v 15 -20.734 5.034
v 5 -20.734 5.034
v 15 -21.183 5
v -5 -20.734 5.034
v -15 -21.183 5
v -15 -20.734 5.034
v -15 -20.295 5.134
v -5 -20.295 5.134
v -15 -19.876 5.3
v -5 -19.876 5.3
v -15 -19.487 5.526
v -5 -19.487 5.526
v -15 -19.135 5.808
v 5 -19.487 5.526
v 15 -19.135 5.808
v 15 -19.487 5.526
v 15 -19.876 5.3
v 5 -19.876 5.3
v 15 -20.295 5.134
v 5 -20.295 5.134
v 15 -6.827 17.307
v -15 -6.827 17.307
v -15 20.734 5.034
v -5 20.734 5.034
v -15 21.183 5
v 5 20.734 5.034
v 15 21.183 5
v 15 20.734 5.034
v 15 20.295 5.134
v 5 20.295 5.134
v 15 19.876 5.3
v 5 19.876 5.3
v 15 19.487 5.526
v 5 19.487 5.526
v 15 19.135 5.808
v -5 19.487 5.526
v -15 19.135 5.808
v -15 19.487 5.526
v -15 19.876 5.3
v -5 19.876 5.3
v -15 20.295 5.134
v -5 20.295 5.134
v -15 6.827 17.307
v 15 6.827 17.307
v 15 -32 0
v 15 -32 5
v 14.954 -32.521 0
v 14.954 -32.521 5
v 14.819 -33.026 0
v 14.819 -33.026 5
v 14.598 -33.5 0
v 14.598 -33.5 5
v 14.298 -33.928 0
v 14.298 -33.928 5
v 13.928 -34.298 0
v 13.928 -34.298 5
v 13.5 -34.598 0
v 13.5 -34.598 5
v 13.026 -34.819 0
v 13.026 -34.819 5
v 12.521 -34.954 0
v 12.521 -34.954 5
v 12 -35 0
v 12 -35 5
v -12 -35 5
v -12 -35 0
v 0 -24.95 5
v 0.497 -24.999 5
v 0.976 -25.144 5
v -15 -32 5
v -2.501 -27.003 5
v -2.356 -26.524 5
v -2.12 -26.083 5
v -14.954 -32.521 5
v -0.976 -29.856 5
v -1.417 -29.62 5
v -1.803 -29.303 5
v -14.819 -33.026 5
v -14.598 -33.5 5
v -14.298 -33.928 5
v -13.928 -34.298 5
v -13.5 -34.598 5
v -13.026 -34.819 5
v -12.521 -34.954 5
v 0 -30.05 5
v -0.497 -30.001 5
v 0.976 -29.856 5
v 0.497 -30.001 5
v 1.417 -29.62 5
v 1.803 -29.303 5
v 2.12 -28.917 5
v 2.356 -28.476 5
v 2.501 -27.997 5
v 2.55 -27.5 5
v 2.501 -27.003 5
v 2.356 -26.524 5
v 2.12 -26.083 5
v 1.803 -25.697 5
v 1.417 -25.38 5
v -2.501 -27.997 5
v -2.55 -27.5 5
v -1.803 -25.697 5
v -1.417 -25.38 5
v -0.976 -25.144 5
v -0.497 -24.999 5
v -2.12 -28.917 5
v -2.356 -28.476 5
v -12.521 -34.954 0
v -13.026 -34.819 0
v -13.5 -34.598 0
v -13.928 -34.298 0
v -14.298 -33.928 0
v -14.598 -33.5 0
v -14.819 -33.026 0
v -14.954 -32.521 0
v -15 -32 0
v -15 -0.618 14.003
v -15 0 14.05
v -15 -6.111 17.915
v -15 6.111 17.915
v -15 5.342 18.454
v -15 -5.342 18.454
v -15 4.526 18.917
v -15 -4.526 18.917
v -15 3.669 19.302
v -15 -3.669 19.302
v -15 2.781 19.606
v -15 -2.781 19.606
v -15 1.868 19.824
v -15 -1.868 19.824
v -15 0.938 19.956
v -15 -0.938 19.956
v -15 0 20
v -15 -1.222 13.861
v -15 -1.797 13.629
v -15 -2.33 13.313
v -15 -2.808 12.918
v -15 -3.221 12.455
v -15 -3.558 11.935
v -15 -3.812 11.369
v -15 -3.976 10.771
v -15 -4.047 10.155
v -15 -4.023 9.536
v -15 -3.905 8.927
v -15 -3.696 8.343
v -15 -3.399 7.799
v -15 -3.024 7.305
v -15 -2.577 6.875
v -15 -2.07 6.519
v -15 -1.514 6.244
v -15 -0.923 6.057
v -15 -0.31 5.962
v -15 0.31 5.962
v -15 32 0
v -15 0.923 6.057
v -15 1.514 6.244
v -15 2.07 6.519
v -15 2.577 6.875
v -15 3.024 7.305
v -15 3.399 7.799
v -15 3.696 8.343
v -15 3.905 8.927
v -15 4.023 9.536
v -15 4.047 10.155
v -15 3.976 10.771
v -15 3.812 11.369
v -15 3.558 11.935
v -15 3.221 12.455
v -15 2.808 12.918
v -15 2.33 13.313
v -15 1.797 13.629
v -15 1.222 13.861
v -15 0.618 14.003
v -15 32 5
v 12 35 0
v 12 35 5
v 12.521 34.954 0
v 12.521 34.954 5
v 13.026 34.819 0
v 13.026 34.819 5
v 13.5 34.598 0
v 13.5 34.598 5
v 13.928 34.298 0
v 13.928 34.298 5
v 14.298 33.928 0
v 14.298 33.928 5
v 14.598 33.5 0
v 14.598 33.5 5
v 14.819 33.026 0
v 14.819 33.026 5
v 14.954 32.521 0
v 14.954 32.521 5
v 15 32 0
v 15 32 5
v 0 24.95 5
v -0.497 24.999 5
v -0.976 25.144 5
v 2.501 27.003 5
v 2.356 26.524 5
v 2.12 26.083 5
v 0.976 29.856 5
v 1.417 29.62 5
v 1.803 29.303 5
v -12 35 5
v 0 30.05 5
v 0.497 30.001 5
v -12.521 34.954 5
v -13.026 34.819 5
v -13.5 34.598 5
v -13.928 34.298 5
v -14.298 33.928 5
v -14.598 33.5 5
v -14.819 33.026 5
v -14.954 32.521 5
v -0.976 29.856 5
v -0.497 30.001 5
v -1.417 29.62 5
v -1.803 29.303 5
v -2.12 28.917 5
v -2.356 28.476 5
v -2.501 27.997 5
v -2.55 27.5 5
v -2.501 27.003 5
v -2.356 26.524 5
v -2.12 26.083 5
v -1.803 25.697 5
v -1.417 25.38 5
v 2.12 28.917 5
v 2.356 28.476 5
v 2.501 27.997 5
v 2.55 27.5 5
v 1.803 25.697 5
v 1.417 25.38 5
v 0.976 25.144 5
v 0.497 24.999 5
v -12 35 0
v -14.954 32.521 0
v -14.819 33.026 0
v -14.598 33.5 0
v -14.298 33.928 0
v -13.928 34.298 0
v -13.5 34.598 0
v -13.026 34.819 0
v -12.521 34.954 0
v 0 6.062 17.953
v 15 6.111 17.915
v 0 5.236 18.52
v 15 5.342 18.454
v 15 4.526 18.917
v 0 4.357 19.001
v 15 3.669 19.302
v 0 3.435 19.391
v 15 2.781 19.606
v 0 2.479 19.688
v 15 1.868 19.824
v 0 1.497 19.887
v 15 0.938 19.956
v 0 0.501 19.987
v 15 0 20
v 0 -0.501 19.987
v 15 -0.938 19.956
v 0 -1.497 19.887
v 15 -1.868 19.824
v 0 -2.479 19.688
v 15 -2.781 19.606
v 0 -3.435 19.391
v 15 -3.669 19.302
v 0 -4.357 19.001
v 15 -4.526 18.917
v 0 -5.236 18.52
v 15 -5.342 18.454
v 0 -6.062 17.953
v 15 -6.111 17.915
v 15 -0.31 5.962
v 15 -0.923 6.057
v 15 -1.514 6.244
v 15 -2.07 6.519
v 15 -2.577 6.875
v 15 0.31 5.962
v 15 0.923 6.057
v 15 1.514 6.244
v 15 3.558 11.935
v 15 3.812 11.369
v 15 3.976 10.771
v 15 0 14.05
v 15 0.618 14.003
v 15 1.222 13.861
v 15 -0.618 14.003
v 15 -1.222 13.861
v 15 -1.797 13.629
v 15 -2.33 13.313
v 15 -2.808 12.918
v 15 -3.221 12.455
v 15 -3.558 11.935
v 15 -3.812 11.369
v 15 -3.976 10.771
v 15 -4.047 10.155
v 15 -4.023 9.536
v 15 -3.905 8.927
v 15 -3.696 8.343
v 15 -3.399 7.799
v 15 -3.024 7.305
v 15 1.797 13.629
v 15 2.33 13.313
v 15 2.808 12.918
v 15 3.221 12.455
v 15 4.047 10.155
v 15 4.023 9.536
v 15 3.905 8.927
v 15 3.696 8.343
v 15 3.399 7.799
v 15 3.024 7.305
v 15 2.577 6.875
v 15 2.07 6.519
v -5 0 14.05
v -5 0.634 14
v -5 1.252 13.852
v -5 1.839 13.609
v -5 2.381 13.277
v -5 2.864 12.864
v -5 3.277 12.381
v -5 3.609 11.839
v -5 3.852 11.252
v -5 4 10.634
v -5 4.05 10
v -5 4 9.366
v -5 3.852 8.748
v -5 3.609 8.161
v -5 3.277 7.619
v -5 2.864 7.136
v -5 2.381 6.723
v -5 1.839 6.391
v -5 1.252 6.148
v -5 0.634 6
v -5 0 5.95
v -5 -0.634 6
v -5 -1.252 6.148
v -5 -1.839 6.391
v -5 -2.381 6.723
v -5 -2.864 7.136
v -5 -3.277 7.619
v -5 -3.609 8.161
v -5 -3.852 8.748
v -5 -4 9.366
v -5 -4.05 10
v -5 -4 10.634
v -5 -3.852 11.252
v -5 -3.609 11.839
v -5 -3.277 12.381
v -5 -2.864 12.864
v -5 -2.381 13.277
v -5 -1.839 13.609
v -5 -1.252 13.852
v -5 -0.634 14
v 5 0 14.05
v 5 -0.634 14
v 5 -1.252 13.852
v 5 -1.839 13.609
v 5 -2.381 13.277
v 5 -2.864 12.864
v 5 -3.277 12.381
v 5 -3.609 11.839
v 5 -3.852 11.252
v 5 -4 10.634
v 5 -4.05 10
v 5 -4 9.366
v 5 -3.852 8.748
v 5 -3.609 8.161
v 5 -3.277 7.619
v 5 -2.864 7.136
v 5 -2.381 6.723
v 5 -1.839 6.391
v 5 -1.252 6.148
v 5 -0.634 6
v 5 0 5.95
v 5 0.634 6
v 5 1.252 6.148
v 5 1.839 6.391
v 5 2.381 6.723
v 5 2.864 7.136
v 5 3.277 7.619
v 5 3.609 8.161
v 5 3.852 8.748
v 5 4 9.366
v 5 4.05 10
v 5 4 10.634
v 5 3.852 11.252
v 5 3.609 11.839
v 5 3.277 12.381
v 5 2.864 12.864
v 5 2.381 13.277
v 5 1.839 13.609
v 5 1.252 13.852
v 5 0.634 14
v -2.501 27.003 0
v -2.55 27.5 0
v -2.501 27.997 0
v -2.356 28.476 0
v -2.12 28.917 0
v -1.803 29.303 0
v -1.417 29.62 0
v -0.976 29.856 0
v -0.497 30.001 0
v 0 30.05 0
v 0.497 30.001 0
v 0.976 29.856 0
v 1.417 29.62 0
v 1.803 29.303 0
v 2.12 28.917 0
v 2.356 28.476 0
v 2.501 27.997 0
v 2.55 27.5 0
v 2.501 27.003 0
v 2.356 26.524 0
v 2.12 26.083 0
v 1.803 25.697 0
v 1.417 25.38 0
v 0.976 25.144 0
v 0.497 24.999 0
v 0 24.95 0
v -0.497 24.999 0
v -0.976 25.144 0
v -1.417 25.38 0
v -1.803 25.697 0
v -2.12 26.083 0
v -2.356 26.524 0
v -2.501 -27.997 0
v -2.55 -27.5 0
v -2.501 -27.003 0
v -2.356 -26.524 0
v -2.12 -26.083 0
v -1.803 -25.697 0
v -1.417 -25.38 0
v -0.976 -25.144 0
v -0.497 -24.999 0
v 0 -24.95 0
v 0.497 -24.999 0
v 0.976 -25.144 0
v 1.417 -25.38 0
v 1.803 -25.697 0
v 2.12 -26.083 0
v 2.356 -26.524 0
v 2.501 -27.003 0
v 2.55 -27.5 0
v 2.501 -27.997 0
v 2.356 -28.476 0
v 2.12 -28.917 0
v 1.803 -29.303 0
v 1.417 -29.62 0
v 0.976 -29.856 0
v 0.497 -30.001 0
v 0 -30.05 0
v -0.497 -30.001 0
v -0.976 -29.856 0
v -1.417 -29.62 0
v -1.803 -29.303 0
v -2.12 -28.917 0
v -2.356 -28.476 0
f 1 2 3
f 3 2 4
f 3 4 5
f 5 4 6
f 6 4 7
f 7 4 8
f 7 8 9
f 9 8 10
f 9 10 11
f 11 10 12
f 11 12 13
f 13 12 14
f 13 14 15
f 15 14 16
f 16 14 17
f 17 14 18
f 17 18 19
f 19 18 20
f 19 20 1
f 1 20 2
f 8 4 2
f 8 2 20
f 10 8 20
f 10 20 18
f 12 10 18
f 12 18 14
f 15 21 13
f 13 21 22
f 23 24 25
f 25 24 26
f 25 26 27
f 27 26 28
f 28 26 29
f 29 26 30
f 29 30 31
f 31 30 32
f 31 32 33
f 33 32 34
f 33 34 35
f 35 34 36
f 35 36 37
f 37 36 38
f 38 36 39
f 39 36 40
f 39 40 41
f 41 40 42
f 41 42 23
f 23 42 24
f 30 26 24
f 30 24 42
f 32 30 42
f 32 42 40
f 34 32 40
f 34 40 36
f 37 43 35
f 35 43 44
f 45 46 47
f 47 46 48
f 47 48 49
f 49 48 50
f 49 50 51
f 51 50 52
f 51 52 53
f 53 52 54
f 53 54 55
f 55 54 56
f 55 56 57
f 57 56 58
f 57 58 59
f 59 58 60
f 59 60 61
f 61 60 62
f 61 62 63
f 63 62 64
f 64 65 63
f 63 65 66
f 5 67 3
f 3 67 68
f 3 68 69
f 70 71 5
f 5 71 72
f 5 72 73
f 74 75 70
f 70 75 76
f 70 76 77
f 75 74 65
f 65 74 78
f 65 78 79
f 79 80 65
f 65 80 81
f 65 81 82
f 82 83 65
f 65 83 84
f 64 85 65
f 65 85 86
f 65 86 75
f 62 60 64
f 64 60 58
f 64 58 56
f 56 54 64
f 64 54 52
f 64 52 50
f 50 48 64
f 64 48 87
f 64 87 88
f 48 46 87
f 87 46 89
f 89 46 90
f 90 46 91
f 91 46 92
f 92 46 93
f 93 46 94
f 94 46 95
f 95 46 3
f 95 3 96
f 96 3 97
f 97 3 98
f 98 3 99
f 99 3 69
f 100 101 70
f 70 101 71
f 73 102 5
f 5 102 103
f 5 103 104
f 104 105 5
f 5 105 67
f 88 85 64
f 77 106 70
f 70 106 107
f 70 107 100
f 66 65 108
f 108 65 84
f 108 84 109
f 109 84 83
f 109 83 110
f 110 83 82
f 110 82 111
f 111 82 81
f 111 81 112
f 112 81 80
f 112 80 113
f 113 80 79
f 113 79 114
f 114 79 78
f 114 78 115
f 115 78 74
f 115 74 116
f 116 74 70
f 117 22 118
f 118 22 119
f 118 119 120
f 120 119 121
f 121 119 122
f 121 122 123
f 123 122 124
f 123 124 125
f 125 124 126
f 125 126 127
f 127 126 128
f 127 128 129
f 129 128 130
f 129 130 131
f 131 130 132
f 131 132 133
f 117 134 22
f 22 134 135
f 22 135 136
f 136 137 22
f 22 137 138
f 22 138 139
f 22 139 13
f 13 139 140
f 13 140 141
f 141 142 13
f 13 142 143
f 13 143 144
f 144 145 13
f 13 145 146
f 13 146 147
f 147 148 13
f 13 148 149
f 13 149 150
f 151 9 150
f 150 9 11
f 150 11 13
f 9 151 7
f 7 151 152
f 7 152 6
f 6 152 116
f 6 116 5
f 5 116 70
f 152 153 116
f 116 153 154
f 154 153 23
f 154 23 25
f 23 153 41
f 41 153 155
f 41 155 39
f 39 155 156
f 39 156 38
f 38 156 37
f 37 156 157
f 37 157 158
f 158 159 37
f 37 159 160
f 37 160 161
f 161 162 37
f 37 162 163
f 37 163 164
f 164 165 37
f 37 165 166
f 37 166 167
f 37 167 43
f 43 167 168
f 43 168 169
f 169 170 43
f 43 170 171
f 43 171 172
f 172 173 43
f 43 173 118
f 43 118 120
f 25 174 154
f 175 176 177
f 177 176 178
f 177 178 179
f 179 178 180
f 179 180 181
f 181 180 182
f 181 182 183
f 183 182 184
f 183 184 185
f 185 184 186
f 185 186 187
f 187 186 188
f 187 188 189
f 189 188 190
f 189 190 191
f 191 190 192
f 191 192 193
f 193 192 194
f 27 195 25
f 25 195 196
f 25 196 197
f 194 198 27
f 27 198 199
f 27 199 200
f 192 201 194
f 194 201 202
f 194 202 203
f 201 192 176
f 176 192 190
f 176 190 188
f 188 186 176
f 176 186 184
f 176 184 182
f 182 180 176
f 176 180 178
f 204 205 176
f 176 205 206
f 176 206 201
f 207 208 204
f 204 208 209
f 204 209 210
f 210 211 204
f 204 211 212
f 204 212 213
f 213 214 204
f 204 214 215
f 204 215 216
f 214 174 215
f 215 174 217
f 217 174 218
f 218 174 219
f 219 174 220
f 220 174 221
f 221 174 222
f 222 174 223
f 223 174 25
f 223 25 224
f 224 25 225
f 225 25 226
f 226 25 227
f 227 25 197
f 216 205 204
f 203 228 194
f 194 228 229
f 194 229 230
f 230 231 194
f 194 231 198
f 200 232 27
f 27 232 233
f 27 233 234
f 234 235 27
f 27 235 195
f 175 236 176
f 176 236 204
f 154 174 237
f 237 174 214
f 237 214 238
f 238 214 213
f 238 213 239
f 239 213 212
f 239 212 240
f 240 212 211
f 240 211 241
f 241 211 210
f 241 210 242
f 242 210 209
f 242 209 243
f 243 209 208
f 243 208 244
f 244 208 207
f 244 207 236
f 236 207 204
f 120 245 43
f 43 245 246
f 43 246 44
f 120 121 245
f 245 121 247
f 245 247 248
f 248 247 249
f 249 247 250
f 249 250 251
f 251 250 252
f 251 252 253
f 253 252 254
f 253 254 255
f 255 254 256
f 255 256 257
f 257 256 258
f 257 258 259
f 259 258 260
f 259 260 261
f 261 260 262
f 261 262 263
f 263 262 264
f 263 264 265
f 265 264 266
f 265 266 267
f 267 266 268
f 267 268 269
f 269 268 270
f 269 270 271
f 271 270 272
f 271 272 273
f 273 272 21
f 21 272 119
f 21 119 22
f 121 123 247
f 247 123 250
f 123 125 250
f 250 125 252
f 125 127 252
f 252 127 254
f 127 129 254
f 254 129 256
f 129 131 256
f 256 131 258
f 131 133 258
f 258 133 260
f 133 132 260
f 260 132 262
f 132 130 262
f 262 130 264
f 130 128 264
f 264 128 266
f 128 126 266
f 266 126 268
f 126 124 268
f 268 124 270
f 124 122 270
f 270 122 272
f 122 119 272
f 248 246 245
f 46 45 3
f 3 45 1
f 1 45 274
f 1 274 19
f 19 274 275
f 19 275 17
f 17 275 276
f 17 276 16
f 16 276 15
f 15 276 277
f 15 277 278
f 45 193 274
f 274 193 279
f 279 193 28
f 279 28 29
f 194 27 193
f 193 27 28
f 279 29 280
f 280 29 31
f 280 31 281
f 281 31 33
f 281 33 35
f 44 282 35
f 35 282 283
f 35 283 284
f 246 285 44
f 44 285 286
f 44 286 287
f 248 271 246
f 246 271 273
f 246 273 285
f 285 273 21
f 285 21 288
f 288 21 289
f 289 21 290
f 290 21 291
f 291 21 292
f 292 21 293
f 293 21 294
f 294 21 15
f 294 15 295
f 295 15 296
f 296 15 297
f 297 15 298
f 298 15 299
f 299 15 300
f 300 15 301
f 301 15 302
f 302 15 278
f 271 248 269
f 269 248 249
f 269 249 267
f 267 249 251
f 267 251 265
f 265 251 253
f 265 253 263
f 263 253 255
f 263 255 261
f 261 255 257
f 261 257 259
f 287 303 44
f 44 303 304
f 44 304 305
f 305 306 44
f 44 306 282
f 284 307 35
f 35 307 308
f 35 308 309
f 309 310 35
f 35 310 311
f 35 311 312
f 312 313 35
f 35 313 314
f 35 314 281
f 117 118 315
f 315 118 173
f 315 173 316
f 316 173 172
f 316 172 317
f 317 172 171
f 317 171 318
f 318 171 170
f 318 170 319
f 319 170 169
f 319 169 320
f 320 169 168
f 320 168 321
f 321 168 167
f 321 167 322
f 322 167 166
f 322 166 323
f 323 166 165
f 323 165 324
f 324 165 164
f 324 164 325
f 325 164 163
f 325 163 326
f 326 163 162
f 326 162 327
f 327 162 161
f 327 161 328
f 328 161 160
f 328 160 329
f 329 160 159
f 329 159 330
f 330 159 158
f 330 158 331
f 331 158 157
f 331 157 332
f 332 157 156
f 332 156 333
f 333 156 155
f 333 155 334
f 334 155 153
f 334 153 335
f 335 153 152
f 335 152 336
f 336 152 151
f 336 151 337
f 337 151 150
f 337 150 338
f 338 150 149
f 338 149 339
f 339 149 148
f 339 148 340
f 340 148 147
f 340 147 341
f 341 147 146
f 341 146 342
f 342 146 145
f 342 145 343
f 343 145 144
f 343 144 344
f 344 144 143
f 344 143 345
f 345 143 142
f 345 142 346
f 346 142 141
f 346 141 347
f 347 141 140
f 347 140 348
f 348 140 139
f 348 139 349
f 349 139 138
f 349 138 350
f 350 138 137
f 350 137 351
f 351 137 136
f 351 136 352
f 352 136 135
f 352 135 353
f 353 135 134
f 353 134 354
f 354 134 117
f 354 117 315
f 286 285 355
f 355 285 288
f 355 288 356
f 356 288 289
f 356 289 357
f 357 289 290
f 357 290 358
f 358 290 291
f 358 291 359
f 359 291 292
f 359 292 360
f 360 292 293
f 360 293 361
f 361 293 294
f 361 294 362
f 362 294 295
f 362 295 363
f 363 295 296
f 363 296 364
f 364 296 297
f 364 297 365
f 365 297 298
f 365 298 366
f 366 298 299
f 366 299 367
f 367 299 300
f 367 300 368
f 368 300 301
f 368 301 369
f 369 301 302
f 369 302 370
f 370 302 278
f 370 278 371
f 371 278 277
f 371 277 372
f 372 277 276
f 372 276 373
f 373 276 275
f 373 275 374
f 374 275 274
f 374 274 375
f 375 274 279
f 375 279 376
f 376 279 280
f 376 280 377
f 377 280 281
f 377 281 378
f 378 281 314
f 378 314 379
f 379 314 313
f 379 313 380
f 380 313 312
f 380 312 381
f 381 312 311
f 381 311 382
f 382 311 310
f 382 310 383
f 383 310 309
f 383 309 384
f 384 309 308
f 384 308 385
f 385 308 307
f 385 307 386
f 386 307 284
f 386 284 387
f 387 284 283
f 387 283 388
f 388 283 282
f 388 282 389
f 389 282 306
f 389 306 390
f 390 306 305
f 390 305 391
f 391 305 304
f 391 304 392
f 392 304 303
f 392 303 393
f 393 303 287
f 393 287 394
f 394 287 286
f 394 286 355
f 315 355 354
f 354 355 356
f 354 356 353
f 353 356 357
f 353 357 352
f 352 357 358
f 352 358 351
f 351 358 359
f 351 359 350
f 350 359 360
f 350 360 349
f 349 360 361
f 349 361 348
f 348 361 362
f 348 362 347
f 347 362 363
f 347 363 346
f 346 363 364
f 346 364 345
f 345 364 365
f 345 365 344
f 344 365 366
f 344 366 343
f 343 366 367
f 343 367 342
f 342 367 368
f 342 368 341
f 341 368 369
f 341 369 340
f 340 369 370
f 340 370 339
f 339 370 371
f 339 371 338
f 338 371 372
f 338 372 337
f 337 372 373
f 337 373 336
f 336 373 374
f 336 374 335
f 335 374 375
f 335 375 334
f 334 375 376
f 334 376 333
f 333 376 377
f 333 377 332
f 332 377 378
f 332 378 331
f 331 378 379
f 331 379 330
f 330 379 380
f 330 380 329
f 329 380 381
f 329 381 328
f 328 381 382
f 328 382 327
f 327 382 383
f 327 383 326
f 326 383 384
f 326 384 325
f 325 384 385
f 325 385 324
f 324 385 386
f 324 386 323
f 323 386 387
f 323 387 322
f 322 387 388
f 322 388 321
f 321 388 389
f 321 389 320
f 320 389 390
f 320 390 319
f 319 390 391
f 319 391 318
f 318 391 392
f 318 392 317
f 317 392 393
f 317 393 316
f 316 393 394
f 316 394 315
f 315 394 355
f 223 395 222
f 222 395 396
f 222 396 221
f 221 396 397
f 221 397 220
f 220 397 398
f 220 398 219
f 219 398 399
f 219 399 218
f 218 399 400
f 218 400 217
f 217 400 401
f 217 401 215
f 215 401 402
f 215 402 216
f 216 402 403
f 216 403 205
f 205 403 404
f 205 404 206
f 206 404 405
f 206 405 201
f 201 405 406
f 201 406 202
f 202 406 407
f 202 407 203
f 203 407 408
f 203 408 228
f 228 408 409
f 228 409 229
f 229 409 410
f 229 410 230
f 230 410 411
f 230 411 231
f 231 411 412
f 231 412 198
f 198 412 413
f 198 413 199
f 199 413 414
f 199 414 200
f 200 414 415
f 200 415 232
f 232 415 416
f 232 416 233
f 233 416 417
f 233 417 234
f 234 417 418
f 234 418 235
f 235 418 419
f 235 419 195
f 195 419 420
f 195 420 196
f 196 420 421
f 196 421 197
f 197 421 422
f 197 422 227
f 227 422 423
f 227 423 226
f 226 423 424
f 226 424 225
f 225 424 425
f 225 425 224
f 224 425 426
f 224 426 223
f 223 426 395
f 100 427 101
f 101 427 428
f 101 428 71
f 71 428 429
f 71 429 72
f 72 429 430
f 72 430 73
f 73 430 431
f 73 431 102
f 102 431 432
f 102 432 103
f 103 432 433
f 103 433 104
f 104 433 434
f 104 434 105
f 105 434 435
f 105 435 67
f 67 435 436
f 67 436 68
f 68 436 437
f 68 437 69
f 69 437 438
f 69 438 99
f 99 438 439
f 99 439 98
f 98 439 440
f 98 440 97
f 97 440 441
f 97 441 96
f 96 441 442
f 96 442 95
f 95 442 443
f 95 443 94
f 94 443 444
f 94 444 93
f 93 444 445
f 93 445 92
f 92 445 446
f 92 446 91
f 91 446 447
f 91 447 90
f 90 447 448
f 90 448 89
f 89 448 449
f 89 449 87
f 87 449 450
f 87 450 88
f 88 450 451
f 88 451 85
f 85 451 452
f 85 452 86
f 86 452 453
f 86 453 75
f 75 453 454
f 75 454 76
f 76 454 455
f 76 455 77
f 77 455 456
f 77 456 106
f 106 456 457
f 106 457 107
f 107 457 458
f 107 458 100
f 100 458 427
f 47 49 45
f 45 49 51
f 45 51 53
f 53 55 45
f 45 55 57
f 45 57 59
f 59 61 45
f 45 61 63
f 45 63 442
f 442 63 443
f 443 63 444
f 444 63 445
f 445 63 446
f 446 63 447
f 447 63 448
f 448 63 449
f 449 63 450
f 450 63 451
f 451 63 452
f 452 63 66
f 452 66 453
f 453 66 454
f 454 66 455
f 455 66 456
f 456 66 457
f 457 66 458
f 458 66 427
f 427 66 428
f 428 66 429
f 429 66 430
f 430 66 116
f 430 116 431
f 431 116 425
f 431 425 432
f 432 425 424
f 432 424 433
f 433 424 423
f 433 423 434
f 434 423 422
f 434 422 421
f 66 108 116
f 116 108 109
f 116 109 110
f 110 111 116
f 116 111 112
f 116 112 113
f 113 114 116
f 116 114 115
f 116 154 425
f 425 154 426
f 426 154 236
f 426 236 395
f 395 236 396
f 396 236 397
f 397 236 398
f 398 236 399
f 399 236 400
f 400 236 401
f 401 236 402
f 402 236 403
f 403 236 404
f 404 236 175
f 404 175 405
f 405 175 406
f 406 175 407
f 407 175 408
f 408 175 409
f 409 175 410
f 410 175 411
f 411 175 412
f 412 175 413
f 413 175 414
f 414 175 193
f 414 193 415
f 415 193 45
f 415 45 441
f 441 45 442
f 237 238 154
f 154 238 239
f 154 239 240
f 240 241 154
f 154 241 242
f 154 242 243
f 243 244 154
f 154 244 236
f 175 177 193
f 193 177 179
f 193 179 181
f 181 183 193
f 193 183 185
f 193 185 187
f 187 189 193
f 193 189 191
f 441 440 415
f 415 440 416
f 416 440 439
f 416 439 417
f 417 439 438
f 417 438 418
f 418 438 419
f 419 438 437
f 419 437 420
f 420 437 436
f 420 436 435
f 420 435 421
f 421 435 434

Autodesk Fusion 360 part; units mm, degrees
sketch "Sketch1" plane through (0, 0, 0) normal (0, 0, 1) x (1, 0, 0)
  line L0 (15, -35) -> (-15, -35)
  line L1 (-15, -35) -> (-15, 35)
  line L2 (-15, 35) -> (15, 35)
  line L3 (15, 35) -> (15, -35)
  line L4 (15, -35) -> (-15, 35) construction
  line L5 (-15, -35) -> (15, 35) construction
  line L6 (-15, 20) -> (15, 20)
  line L7 (15, 20) -> (15, -20)
  line L8 (15, -20) -> (-15, -20)
  line L9 (-15, -20) -> (-15, 20)
  line L10 (-15, 20) -> (15, -20) construction
  line L11 (15, 20) -> (-15, -20) construction
  line L12 (0, 35) -> (0, 20) construction
  line L13 (0, -20) -> (0, -35) construction
  circle A0 centre (0, -27.5) radius 2.55
  circle A1 centre (0, 27.5) radius 2.55
  dimension "d1" = 30
  dimension "d2" = 15
  dimension "d3" = 40
  dimension "d4" = 5.1
  dimension "d5" = 5.1
extrude "Extrude1" add sketch "Sketch1" along normal blind 5
extrude "Extrude2" add sketch "Sketch1" along normal blind 15 from surface at 5 contours L1 L3 L6 L7 L8 L9
sketch "Sketch2" plane through (15, 0, 0) normal (1, 0, 0) x (0, 0, -1)
  line L0 (0, -35) -> (0, 35)
  line L1 (0, 35) -> (-5, 35)
  line L2 (-5, 35) -> (-5, 20)
  line L3 (-5, 20) -> (-20, 20)
  line L4 (-20, 20) -> (-20, -20)
  line L5 (-20, -20) -> (-5, -20)
  line L6 (-5, -20) -> (-5, -35)
  line L7 (-5, -35) -> (0, -35)
  line L8 (0, 0) -> (-20, 0) construction
  circle A0 centre (-10, 0) radius 4.05
  circle A1 centre (-10, 0) radius 10
  line L9 (-5, 20) -> (-17.3072, 6.8268)
  line L10 (-5, -20) -> (-17.3072, -6.8268)
  dimension "d11" = 8.1
extrude "Extrude3" cut sketch "Sketch2" against normal through all contours A0
extrude "Extrude8" cut sketch "Sketch2" against normal through all contours L3 L4 A1 L9 | L4 L5 A1 L10
fillet "Fillet1" radius 3 4 edges at (-15, 35, 2.5) (15, 35, 2.5) (-15, -35, 2.5) (15, -35, 2.5)
fillet "Fillet1" radius 3 2 edges at (0, 20, 5) (0, -20, 5)
equation "d4 = d5"
